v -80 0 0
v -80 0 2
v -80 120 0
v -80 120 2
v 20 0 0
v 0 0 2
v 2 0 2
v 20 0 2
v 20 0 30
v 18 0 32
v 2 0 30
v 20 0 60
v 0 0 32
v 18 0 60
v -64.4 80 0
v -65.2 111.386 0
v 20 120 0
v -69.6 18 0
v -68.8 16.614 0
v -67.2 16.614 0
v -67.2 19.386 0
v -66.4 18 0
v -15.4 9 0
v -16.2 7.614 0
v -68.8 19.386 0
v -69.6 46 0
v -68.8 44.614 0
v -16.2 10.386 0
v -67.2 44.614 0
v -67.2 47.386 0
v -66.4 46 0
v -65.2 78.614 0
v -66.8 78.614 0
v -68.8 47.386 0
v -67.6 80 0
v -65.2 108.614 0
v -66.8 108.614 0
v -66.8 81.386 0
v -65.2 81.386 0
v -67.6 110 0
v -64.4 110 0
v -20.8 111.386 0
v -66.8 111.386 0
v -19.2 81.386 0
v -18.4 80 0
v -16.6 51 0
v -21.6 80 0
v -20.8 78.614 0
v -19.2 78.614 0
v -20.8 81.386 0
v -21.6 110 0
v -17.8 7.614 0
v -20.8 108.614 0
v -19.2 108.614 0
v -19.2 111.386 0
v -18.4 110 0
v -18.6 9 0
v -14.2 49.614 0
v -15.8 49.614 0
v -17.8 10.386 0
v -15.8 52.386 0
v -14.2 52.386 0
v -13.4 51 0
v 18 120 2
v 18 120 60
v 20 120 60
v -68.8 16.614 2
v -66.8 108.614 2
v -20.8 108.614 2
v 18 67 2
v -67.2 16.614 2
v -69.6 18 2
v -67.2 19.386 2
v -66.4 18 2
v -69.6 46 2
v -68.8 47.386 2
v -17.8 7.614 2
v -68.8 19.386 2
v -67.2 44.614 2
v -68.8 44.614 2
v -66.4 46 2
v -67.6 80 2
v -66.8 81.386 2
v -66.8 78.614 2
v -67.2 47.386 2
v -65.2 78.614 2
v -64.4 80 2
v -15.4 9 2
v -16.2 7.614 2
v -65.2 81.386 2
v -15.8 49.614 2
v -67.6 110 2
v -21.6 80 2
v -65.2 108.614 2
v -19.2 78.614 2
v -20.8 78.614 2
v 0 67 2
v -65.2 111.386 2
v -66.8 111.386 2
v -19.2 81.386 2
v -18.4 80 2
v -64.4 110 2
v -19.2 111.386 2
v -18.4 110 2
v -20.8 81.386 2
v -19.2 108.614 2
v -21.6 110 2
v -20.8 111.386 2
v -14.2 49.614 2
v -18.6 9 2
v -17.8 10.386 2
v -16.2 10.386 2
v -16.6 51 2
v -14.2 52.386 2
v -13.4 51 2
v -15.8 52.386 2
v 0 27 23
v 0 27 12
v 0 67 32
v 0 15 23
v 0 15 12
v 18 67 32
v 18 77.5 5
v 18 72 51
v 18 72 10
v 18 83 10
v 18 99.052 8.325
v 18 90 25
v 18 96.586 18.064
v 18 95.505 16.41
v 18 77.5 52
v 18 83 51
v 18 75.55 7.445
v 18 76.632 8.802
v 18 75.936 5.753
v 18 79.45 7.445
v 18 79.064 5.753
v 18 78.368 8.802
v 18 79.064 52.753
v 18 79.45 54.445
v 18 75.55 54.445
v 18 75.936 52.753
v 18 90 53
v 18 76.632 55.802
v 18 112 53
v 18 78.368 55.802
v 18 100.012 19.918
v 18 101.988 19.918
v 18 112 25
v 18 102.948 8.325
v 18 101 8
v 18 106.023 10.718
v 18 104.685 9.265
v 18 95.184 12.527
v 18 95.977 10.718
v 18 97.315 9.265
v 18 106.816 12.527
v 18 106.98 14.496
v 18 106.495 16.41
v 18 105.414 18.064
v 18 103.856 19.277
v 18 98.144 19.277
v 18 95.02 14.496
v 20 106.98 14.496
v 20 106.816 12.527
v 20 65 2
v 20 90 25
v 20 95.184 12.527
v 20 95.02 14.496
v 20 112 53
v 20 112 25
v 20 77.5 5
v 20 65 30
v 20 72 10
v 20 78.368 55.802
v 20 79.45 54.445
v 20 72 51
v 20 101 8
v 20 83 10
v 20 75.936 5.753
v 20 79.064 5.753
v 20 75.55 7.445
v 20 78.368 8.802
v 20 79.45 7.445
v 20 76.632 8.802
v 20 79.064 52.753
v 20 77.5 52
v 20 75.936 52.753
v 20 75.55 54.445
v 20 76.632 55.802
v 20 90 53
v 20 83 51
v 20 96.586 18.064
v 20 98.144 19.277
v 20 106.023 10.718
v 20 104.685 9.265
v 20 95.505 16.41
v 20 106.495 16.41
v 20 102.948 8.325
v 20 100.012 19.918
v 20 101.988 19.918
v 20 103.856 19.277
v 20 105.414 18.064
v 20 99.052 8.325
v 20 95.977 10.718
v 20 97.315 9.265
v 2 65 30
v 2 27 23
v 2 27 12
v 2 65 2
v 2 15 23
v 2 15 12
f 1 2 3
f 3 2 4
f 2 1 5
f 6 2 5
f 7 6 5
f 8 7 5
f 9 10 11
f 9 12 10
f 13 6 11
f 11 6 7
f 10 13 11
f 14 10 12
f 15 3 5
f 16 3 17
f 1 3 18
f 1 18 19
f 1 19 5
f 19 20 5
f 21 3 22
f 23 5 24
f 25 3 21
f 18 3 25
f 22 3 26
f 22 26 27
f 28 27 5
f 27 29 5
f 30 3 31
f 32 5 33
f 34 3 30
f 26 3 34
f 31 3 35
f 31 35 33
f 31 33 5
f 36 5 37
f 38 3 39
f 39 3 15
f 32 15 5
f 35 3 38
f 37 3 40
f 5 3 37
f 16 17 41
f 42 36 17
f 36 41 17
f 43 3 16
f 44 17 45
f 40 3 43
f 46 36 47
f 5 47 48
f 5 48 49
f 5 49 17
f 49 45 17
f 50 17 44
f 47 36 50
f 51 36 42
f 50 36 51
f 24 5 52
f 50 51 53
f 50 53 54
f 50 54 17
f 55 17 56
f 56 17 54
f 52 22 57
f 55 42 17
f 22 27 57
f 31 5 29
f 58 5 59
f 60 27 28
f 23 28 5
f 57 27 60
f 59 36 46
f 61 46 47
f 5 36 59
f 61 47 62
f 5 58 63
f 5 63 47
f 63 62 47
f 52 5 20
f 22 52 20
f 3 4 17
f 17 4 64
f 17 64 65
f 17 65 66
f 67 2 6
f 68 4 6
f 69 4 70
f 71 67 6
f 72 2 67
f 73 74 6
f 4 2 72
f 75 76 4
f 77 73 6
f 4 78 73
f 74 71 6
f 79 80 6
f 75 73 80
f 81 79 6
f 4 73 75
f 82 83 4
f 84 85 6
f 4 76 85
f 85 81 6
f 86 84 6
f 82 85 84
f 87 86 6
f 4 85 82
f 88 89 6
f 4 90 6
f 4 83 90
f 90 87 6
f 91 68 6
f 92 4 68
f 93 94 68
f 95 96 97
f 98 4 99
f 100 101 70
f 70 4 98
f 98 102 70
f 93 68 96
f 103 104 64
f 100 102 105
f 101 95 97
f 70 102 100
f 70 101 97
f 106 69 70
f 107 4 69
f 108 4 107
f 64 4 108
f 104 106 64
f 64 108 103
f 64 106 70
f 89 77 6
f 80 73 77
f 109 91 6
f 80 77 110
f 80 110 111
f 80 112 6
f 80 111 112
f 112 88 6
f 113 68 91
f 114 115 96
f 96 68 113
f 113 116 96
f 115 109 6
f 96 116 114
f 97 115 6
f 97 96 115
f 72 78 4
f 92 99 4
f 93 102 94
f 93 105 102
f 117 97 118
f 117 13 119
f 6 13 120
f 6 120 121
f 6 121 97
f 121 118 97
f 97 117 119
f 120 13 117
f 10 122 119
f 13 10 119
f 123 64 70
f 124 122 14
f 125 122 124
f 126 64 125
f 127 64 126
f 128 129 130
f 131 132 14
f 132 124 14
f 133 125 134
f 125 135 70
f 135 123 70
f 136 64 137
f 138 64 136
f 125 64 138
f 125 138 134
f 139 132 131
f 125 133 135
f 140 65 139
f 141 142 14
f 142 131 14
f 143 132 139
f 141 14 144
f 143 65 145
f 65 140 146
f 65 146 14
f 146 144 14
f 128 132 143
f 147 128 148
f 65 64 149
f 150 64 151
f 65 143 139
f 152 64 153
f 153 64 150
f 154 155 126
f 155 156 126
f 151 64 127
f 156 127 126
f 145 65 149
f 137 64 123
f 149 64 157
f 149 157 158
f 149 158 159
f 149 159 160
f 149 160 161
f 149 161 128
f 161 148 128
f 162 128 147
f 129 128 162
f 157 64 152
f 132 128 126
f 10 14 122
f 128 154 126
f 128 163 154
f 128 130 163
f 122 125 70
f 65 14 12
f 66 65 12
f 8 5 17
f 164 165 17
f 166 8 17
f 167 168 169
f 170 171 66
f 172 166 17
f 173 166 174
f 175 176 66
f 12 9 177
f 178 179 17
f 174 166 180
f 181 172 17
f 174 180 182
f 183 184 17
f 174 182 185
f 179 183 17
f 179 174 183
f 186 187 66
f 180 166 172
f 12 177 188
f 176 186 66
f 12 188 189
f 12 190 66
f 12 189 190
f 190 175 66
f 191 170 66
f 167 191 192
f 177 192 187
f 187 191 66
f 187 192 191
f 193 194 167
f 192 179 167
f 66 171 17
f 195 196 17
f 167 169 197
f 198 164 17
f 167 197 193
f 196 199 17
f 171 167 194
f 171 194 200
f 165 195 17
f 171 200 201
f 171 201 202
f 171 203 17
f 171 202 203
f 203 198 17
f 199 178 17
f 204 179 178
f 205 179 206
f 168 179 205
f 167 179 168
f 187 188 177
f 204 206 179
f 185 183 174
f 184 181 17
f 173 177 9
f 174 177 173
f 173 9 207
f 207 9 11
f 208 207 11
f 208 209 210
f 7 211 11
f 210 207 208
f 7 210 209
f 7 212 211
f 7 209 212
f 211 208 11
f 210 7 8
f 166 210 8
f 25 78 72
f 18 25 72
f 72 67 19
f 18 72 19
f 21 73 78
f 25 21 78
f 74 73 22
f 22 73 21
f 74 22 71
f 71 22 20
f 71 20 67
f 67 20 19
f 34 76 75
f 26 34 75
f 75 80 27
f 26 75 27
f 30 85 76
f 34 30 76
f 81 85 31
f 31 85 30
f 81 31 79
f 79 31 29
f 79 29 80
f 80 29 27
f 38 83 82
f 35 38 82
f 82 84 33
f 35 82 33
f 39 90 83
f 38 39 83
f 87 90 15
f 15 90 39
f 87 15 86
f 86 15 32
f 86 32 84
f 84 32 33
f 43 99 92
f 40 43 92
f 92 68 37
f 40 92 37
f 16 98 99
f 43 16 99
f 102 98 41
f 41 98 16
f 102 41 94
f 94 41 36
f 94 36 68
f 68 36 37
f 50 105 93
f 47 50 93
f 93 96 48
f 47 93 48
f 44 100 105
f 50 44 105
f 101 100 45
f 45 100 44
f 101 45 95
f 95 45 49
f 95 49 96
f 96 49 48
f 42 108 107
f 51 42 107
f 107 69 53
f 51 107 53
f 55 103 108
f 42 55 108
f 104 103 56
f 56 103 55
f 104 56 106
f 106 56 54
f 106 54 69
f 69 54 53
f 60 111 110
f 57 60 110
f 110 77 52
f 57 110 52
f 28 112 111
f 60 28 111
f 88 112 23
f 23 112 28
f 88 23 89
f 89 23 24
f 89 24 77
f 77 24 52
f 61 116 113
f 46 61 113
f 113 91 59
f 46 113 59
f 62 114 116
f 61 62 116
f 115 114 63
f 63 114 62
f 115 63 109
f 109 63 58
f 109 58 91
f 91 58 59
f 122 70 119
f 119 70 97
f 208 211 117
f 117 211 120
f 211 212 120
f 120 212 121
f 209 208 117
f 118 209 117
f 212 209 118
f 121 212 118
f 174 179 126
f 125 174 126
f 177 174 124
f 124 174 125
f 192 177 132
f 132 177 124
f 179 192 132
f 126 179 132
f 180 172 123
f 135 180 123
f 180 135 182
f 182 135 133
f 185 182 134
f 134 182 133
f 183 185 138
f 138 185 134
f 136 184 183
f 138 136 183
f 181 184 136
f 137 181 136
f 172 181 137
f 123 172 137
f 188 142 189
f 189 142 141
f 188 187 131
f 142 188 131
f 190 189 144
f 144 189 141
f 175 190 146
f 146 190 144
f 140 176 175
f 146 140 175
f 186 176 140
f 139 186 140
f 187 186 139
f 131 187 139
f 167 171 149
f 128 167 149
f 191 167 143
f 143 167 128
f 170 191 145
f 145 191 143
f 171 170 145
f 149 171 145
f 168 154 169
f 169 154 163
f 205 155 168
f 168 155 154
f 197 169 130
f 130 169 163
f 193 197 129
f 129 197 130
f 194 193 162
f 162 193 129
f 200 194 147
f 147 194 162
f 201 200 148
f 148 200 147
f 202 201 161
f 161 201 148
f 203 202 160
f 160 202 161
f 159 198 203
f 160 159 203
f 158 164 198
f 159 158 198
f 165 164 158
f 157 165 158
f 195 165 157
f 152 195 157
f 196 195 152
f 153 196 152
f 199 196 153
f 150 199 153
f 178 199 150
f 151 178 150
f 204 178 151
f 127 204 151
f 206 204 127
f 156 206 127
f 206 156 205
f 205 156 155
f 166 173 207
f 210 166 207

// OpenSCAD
// front
difference() {
	cube([20, 120, 60]);
	// power switch
	translate([-0.5, 90, 25]) cube([21, 22, 28]);
	// power plug
	translate([-0.5, 101, 14]) rotate([0, 90, 0]) cylinder(r = 6, h = 21);
	// D sub 25 pin female connector
	translate([-0.5, 72, 10]) cube([21, 11, 41]);
	translate([-0.5, 77.5, 54]) rotate([0, 90, 0]) cylinder(r = 2, h = 21);
	translate([-0.5, 77.5, 7]) rotate([0, 90, 0]) cylinder(r = 2, h = 21);

	translate([-0.5, 15, 12]) cube([21, 12, 11]);

	translate([2, 0, 0]) cube([20, 65, 30]);
	translate([-2, 0, 32]) cube([20, 120, 40]);
	translate([-2, 67, 0]) cube([20, 120, 32]);
}

difference() {
	translate([-80, 0, 0]) cube([100, 120, 2]);
	translate([-17, 9, 0]) cylinder(r = 1.6, h = 21);
	translate([-15, 51, 0]) cylinder(r = 1.6, h = 21);
	translate([-68, 18, 0]) cylinder(r = 1.6, h = 21);
	translate([-68, 46, 0]) cylinder(r = 1.6, h = 21);
	translate([-20, 80, 0]) cylinder(r = 1.6, h = 21);
	translate([-20, 110, 0]) cylinder(r = 1.6, h = 21);
	translate([-66, 80, 0]) cylinder(r = 1.6, h = 21);
	translate([-66, 110, 0]) cylinder(r = 1.6, h = 21);
}
